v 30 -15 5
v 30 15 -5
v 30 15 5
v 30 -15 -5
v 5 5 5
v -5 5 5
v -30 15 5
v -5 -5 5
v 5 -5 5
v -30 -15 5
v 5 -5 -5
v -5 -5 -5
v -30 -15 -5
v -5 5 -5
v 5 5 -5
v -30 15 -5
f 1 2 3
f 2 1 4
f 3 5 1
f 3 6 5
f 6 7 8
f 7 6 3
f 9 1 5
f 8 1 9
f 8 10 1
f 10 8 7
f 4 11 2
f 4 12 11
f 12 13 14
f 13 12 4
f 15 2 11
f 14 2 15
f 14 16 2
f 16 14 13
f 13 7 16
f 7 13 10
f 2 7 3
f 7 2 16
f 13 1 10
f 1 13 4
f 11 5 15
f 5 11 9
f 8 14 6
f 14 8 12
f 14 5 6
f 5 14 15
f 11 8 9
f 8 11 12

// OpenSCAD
// Define dimensions for the rectangular block
block_length = 60;  // Length of the block
block_width = 30;   // Width of the block
block_height = 10;  // Height of the block

// Define dimensions for the square hole
hole_size = 10;     // Side length of the square hole

// Create the rectangular block with a square hole
difference() {
    // Main rectangular block
    cube([block_length, block_width, block_height], center = true);
    
    // Square hole
    translate([0, 0, -block_height / 2])  // Center the hole vertically
        cube([hole_size, hole_size, block_height * 2], center = true);
}
